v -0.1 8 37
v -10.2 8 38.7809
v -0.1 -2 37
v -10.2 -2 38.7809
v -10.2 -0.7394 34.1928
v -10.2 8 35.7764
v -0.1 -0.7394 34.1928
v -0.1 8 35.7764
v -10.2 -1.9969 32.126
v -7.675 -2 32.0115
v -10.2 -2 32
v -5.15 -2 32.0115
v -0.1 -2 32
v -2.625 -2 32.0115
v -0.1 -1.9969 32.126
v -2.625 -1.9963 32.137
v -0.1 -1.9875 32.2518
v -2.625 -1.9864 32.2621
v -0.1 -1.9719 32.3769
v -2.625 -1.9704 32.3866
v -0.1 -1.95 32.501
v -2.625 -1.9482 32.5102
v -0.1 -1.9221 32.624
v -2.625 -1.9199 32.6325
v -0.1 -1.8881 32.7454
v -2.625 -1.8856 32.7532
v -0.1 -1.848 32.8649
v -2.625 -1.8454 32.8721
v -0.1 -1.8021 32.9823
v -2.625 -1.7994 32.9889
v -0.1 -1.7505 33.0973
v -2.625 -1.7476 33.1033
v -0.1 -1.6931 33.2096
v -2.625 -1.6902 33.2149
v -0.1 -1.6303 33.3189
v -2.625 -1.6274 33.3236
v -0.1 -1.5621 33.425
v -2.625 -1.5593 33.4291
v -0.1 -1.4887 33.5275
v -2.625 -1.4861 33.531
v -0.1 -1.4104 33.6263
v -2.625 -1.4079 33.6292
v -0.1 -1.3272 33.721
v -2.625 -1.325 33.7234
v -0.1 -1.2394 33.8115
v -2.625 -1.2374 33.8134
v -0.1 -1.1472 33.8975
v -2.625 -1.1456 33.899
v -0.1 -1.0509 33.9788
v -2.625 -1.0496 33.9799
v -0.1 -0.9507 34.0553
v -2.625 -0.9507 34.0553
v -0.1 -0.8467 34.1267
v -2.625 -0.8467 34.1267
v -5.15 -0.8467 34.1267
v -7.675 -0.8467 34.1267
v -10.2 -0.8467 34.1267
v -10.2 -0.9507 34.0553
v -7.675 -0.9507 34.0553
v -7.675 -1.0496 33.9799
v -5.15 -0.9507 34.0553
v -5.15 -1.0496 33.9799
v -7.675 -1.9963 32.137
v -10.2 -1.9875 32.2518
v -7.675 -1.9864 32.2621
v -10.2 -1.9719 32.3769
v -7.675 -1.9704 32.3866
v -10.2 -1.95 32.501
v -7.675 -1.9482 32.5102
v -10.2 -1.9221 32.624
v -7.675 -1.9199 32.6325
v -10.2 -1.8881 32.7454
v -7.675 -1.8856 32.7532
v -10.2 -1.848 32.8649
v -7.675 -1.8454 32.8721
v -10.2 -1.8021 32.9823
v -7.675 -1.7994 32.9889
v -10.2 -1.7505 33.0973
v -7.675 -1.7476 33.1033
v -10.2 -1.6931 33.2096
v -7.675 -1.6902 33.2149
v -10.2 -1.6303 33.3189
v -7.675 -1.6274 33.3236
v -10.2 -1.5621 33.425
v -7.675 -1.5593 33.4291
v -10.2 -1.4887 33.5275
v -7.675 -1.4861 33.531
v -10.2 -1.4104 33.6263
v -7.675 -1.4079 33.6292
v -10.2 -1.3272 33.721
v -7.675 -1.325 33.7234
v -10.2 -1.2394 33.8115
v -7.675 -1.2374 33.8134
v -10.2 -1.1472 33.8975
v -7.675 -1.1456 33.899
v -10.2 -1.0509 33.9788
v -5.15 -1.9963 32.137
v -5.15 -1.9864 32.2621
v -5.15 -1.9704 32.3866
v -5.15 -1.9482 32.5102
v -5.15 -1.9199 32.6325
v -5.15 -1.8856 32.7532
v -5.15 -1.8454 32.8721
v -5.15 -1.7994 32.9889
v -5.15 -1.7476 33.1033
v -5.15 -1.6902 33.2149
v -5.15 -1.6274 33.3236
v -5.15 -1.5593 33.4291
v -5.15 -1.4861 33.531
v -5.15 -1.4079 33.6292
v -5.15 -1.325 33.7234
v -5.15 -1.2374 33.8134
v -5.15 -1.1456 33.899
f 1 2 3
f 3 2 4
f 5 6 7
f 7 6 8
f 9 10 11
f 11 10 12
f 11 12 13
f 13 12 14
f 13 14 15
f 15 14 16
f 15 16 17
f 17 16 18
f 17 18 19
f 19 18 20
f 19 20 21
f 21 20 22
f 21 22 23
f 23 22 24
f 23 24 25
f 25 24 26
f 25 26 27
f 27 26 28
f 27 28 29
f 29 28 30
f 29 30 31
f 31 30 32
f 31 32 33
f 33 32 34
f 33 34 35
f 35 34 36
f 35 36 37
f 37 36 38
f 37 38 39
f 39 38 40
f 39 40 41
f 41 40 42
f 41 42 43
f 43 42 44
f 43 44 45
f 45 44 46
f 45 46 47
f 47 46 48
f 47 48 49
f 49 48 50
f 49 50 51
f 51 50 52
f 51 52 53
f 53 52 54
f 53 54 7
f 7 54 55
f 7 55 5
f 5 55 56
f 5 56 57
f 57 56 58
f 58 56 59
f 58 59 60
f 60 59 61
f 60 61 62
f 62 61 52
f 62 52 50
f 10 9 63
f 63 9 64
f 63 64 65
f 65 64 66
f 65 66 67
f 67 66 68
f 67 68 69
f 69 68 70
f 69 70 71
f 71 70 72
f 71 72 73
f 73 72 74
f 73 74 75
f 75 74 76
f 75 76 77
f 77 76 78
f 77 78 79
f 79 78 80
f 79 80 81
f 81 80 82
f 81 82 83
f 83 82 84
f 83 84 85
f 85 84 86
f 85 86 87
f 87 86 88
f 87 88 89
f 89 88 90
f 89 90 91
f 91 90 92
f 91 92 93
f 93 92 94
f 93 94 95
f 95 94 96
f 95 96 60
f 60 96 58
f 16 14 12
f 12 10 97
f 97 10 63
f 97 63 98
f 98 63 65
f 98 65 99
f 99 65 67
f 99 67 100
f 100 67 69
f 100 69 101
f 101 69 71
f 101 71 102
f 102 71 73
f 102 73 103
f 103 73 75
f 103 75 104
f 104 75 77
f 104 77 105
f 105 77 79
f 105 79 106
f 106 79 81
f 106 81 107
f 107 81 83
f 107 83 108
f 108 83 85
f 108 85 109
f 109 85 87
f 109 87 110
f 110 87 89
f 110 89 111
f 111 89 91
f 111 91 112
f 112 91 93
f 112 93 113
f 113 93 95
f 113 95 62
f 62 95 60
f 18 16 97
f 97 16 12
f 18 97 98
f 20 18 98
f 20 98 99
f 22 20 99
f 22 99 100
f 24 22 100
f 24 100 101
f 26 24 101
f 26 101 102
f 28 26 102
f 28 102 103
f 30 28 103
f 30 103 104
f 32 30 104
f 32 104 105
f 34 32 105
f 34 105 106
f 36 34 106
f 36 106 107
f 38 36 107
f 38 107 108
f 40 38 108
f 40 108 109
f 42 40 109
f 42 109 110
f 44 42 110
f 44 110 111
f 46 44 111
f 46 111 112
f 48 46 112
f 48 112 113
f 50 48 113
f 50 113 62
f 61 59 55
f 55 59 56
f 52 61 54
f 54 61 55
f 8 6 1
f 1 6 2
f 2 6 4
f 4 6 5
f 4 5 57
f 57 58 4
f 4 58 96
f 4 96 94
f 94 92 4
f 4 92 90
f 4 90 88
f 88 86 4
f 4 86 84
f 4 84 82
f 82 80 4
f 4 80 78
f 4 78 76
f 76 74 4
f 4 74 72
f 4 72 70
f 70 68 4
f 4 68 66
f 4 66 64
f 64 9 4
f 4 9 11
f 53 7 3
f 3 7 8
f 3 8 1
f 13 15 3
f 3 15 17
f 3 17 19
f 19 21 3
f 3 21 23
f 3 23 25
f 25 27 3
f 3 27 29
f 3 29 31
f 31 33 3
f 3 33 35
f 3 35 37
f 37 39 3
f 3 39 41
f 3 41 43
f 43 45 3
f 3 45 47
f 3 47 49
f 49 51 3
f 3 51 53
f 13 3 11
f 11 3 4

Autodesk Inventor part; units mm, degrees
ref_plane "YZ Plane" through (0, 0, 0) normal (1, 0, 0) x (0, 1, 0)
ref_plane "XZ Plane" through (0, 0, 0) normal (0, 1, 0) x (-1, 0, 0)
ref_plane "Arbeitsebene1" through (0, 0, 32) normal (0, 0, 1) x (1, 0, 0)
sketch "Skizze1" plane through (0, 0, 32) normal (0, 0, 1) x (1, 0, 0)
  line L0 (0, -2) -> (-10.2, -2) construction
  line L1 (0, 0) -> (-10.2, 0) construction
  line L2 (0, 0) -> (0, -2) construction
  line L3 (-10.2, 0) -> (-10.2, -2) construction
  line L4 (-10.2, -2) -> (-0.1, -2)
  line L5 (-0.1, -2) -> (-0.1, 8)
  line L6 (-0.1, 8) -> (-10.2, 8)
  line L7 (-10.2, 8) -> (-10.2, -2)
  dimension "d0" = 10.1
  dimension "d1" = 10
extrude "Extrusion1" add sketch "Skizze1" along normal blind 5
sketch "Skizze2" plane through (-0.1, -2, 32) normal (1, 0, 0) x (0, 0, -1)
  line L0 (-3.3973, 7.8087) -> (-3.7161, 9.6721) projected
  line L1 (-3.0763, 5.9578) -> (-2.8181, 4.4664) projected
  line L2 (-2.7379, 2.2485) -> (-2.2681, 1.397) construction
  line L3 (-1.7937, 0.8596) -> (-2.122, 0.4) construction
  line L4 (-2.7257, 0.0358) -> (-1.7762, -0.6392) construction
  line L5 (0, 0) -> (0, 10) construction
  line L6 (0, 10) -> (-5, 10) construction
  line L7 (-5, 0) -> (-5, 10) construction
  line L8 (0, 0) -> (-5, 0) construction
  line L9 (0, 10) -> (-5, 10) construction
  line L10 (-3.7764, 10) -> (-2.1928, 1.2606)
  line L11 (-1.7937, 0.8596) -> (-2.122, 0.4) projected
  line L12 (-2.6421, 0.9776) -> (-2.2681, 1.397) construction
  line L13 (-2.122, 0.4) -> (-2.1571, -0.2183) construction
  line L14 (-1.7937, 0.8596) -> (-2.122, 0.4) projected
  line L15 (-1.7937, 0.8596) -> (-2.122, 0.4) projected
  arc A0 (-2.1928, 1.2606) -> (0, 0) centre (0, 2.5375) ccw
  line L16 (-3.7764, 10) -> (0, 10)
  line L17 (0, 10) -> (0, 0)
  point P0 (32, 2)
  point P1 (0.0012, 1.774)
extrude "Extrusion2" cut sketch "Skizze2" against normal through all
sketch "Skizze3" plane through (-10.2, -2, 37) normal (0, -1, 0) x (1, 0, 0)
  line L0 (10.2, -37) -> (0, -37) construction
  line L1 (10.2, -42) -> (10.2, -37) construction
  line L2 (0, -37) -> (0, -42) construction
  line L3 (0, -5) -> (10.1, -5) construction
  line L4 (10.1, -5) -> (10.1, 0) construction
  line L5 (0, 0) -> (10.1, 0) construction
  line L6 (0, -5) -> (0, 0) construction
  line L7 (1.0755, -3.8674) -> (-2.3192, -4.631) construction
  line L8 (4.494, -3.2233) -> (1.0755, -3.8674) construction
  line L9 (11.3855, -2.2621) -> (4.494, -3.2233) construction
  line L10 (0, -5) -> (0, 0)
  line L11 (0, -4.1093) -> (10.2, -2.4274) construction
  line L12 (10.1, -5) -> (10.1, 0)
  line L13 (10.1, 0) -> (0, 0)
  line L14 (0, 0) -> (0, 1.7809)
  line L15 (0, 0) -> (10.1, 0)
  line L16 (10.1, 0) -> (0, 1.7809)
  line L17 (10.1, 0) -> (20.3558, 0) construction
extrude "Extrusion3" add sketch "Skizze3" against normal up to surface (10 mm away)
properties part number "palm_side_plate"
